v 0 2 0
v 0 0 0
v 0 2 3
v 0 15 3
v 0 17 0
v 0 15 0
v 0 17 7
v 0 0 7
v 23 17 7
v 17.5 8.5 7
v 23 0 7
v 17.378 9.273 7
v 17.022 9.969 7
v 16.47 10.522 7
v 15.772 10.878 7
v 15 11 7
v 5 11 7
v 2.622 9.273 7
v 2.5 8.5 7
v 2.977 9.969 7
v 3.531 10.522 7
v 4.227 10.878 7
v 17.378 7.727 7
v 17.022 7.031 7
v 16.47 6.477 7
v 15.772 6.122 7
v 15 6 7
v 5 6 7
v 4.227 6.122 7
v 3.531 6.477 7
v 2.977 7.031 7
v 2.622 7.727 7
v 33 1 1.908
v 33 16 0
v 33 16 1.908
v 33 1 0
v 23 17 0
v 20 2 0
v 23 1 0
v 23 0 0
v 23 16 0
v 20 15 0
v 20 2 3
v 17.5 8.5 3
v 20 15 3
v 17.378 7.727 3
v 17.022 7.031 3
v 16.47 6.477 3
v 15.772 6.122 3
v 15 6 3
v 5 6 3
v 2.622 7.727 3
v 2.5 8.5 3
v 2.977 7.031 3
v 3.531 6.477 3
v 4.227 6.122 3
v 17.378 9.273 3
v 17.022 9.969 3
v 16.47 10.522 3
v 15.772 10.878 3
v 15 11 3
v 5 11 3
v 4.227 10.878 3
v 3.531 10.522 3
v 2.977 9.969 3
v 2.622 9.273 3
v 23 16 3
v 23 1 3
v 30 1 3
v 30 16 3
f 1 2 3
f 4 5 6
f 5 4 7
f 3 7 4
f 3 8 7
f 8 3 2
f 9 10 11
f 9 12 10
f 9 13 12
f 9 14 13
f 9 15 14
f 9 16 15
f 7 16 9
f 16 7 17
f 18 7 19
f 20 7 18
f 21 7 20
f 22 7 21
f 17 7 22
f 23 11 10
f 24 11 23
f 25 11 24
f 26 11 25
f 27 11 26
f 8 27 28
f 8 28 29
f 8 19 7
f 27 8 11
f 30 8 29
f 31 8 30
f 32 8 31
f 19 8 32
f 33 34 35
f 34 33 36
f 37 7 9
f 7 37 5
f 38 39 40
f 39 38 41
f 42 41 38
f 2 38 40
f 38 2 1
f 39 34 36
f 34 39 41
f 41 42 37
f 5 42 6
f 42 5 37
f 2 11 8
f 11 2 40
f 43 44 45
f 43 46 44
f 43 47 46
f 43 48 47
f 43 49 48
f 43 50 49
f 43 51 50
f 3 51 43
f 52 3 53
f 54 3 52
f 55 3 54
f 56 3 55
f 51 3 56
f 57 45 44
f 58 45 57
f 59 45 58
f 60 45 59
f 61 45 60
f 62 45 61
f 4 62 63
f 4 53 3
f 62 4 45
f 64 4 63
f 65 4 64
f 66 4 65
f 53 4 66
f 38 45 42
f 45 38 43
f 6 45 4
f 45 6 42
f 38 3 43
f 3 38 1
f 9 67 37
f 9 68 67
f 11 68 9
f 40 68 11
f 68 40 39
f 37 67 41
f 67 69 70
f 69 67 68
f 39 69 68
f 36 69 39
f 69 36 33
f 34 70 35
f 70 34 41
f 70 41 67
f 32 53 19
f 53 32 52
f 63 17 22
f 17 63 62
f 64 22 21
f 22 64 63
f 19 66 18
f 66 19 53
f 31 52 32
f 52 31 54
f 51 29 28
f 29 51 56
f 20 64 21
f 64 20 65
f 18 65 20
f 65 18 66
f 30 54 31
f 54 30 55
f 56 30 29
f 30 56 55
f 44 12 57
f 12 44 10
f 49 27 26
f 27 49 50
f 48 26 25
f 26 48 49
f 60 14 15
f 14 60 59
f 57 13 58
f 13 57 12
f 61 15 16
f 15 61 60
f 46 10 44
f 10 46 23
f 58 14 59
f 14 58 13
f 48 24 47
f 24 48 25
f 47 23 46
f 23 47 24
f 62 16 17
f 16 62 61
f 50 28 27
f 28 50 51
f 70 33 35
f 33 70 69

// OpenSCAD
difference() {
    cube([33, 17, 7]);
    // Inner hole
    translate([0, 2, 0]) cube([20, 13, 3]);
    
    // Outter reduce
    translate([23, 0, 3]) cube([10, 17, 4]);
    translate([23, 0, 0]) cube([10, 1, 4]);
    translate([23, 16, 0]) cube([10, 1, 4]);
    
    
    // Screw hole
    translate([5, 8.5, 0]) cylinder(r=2.5, 7, $fn=20);
    translate([15, 8.5, 0]) cylinder(r=2.5, 7, $fn=20);
    translate([5, 6, 0]) cube([10, 5, 7]);
    translate([30, 0, 3]) rotate([0, 20, 0]) cube([10, 17, 10]);
}
